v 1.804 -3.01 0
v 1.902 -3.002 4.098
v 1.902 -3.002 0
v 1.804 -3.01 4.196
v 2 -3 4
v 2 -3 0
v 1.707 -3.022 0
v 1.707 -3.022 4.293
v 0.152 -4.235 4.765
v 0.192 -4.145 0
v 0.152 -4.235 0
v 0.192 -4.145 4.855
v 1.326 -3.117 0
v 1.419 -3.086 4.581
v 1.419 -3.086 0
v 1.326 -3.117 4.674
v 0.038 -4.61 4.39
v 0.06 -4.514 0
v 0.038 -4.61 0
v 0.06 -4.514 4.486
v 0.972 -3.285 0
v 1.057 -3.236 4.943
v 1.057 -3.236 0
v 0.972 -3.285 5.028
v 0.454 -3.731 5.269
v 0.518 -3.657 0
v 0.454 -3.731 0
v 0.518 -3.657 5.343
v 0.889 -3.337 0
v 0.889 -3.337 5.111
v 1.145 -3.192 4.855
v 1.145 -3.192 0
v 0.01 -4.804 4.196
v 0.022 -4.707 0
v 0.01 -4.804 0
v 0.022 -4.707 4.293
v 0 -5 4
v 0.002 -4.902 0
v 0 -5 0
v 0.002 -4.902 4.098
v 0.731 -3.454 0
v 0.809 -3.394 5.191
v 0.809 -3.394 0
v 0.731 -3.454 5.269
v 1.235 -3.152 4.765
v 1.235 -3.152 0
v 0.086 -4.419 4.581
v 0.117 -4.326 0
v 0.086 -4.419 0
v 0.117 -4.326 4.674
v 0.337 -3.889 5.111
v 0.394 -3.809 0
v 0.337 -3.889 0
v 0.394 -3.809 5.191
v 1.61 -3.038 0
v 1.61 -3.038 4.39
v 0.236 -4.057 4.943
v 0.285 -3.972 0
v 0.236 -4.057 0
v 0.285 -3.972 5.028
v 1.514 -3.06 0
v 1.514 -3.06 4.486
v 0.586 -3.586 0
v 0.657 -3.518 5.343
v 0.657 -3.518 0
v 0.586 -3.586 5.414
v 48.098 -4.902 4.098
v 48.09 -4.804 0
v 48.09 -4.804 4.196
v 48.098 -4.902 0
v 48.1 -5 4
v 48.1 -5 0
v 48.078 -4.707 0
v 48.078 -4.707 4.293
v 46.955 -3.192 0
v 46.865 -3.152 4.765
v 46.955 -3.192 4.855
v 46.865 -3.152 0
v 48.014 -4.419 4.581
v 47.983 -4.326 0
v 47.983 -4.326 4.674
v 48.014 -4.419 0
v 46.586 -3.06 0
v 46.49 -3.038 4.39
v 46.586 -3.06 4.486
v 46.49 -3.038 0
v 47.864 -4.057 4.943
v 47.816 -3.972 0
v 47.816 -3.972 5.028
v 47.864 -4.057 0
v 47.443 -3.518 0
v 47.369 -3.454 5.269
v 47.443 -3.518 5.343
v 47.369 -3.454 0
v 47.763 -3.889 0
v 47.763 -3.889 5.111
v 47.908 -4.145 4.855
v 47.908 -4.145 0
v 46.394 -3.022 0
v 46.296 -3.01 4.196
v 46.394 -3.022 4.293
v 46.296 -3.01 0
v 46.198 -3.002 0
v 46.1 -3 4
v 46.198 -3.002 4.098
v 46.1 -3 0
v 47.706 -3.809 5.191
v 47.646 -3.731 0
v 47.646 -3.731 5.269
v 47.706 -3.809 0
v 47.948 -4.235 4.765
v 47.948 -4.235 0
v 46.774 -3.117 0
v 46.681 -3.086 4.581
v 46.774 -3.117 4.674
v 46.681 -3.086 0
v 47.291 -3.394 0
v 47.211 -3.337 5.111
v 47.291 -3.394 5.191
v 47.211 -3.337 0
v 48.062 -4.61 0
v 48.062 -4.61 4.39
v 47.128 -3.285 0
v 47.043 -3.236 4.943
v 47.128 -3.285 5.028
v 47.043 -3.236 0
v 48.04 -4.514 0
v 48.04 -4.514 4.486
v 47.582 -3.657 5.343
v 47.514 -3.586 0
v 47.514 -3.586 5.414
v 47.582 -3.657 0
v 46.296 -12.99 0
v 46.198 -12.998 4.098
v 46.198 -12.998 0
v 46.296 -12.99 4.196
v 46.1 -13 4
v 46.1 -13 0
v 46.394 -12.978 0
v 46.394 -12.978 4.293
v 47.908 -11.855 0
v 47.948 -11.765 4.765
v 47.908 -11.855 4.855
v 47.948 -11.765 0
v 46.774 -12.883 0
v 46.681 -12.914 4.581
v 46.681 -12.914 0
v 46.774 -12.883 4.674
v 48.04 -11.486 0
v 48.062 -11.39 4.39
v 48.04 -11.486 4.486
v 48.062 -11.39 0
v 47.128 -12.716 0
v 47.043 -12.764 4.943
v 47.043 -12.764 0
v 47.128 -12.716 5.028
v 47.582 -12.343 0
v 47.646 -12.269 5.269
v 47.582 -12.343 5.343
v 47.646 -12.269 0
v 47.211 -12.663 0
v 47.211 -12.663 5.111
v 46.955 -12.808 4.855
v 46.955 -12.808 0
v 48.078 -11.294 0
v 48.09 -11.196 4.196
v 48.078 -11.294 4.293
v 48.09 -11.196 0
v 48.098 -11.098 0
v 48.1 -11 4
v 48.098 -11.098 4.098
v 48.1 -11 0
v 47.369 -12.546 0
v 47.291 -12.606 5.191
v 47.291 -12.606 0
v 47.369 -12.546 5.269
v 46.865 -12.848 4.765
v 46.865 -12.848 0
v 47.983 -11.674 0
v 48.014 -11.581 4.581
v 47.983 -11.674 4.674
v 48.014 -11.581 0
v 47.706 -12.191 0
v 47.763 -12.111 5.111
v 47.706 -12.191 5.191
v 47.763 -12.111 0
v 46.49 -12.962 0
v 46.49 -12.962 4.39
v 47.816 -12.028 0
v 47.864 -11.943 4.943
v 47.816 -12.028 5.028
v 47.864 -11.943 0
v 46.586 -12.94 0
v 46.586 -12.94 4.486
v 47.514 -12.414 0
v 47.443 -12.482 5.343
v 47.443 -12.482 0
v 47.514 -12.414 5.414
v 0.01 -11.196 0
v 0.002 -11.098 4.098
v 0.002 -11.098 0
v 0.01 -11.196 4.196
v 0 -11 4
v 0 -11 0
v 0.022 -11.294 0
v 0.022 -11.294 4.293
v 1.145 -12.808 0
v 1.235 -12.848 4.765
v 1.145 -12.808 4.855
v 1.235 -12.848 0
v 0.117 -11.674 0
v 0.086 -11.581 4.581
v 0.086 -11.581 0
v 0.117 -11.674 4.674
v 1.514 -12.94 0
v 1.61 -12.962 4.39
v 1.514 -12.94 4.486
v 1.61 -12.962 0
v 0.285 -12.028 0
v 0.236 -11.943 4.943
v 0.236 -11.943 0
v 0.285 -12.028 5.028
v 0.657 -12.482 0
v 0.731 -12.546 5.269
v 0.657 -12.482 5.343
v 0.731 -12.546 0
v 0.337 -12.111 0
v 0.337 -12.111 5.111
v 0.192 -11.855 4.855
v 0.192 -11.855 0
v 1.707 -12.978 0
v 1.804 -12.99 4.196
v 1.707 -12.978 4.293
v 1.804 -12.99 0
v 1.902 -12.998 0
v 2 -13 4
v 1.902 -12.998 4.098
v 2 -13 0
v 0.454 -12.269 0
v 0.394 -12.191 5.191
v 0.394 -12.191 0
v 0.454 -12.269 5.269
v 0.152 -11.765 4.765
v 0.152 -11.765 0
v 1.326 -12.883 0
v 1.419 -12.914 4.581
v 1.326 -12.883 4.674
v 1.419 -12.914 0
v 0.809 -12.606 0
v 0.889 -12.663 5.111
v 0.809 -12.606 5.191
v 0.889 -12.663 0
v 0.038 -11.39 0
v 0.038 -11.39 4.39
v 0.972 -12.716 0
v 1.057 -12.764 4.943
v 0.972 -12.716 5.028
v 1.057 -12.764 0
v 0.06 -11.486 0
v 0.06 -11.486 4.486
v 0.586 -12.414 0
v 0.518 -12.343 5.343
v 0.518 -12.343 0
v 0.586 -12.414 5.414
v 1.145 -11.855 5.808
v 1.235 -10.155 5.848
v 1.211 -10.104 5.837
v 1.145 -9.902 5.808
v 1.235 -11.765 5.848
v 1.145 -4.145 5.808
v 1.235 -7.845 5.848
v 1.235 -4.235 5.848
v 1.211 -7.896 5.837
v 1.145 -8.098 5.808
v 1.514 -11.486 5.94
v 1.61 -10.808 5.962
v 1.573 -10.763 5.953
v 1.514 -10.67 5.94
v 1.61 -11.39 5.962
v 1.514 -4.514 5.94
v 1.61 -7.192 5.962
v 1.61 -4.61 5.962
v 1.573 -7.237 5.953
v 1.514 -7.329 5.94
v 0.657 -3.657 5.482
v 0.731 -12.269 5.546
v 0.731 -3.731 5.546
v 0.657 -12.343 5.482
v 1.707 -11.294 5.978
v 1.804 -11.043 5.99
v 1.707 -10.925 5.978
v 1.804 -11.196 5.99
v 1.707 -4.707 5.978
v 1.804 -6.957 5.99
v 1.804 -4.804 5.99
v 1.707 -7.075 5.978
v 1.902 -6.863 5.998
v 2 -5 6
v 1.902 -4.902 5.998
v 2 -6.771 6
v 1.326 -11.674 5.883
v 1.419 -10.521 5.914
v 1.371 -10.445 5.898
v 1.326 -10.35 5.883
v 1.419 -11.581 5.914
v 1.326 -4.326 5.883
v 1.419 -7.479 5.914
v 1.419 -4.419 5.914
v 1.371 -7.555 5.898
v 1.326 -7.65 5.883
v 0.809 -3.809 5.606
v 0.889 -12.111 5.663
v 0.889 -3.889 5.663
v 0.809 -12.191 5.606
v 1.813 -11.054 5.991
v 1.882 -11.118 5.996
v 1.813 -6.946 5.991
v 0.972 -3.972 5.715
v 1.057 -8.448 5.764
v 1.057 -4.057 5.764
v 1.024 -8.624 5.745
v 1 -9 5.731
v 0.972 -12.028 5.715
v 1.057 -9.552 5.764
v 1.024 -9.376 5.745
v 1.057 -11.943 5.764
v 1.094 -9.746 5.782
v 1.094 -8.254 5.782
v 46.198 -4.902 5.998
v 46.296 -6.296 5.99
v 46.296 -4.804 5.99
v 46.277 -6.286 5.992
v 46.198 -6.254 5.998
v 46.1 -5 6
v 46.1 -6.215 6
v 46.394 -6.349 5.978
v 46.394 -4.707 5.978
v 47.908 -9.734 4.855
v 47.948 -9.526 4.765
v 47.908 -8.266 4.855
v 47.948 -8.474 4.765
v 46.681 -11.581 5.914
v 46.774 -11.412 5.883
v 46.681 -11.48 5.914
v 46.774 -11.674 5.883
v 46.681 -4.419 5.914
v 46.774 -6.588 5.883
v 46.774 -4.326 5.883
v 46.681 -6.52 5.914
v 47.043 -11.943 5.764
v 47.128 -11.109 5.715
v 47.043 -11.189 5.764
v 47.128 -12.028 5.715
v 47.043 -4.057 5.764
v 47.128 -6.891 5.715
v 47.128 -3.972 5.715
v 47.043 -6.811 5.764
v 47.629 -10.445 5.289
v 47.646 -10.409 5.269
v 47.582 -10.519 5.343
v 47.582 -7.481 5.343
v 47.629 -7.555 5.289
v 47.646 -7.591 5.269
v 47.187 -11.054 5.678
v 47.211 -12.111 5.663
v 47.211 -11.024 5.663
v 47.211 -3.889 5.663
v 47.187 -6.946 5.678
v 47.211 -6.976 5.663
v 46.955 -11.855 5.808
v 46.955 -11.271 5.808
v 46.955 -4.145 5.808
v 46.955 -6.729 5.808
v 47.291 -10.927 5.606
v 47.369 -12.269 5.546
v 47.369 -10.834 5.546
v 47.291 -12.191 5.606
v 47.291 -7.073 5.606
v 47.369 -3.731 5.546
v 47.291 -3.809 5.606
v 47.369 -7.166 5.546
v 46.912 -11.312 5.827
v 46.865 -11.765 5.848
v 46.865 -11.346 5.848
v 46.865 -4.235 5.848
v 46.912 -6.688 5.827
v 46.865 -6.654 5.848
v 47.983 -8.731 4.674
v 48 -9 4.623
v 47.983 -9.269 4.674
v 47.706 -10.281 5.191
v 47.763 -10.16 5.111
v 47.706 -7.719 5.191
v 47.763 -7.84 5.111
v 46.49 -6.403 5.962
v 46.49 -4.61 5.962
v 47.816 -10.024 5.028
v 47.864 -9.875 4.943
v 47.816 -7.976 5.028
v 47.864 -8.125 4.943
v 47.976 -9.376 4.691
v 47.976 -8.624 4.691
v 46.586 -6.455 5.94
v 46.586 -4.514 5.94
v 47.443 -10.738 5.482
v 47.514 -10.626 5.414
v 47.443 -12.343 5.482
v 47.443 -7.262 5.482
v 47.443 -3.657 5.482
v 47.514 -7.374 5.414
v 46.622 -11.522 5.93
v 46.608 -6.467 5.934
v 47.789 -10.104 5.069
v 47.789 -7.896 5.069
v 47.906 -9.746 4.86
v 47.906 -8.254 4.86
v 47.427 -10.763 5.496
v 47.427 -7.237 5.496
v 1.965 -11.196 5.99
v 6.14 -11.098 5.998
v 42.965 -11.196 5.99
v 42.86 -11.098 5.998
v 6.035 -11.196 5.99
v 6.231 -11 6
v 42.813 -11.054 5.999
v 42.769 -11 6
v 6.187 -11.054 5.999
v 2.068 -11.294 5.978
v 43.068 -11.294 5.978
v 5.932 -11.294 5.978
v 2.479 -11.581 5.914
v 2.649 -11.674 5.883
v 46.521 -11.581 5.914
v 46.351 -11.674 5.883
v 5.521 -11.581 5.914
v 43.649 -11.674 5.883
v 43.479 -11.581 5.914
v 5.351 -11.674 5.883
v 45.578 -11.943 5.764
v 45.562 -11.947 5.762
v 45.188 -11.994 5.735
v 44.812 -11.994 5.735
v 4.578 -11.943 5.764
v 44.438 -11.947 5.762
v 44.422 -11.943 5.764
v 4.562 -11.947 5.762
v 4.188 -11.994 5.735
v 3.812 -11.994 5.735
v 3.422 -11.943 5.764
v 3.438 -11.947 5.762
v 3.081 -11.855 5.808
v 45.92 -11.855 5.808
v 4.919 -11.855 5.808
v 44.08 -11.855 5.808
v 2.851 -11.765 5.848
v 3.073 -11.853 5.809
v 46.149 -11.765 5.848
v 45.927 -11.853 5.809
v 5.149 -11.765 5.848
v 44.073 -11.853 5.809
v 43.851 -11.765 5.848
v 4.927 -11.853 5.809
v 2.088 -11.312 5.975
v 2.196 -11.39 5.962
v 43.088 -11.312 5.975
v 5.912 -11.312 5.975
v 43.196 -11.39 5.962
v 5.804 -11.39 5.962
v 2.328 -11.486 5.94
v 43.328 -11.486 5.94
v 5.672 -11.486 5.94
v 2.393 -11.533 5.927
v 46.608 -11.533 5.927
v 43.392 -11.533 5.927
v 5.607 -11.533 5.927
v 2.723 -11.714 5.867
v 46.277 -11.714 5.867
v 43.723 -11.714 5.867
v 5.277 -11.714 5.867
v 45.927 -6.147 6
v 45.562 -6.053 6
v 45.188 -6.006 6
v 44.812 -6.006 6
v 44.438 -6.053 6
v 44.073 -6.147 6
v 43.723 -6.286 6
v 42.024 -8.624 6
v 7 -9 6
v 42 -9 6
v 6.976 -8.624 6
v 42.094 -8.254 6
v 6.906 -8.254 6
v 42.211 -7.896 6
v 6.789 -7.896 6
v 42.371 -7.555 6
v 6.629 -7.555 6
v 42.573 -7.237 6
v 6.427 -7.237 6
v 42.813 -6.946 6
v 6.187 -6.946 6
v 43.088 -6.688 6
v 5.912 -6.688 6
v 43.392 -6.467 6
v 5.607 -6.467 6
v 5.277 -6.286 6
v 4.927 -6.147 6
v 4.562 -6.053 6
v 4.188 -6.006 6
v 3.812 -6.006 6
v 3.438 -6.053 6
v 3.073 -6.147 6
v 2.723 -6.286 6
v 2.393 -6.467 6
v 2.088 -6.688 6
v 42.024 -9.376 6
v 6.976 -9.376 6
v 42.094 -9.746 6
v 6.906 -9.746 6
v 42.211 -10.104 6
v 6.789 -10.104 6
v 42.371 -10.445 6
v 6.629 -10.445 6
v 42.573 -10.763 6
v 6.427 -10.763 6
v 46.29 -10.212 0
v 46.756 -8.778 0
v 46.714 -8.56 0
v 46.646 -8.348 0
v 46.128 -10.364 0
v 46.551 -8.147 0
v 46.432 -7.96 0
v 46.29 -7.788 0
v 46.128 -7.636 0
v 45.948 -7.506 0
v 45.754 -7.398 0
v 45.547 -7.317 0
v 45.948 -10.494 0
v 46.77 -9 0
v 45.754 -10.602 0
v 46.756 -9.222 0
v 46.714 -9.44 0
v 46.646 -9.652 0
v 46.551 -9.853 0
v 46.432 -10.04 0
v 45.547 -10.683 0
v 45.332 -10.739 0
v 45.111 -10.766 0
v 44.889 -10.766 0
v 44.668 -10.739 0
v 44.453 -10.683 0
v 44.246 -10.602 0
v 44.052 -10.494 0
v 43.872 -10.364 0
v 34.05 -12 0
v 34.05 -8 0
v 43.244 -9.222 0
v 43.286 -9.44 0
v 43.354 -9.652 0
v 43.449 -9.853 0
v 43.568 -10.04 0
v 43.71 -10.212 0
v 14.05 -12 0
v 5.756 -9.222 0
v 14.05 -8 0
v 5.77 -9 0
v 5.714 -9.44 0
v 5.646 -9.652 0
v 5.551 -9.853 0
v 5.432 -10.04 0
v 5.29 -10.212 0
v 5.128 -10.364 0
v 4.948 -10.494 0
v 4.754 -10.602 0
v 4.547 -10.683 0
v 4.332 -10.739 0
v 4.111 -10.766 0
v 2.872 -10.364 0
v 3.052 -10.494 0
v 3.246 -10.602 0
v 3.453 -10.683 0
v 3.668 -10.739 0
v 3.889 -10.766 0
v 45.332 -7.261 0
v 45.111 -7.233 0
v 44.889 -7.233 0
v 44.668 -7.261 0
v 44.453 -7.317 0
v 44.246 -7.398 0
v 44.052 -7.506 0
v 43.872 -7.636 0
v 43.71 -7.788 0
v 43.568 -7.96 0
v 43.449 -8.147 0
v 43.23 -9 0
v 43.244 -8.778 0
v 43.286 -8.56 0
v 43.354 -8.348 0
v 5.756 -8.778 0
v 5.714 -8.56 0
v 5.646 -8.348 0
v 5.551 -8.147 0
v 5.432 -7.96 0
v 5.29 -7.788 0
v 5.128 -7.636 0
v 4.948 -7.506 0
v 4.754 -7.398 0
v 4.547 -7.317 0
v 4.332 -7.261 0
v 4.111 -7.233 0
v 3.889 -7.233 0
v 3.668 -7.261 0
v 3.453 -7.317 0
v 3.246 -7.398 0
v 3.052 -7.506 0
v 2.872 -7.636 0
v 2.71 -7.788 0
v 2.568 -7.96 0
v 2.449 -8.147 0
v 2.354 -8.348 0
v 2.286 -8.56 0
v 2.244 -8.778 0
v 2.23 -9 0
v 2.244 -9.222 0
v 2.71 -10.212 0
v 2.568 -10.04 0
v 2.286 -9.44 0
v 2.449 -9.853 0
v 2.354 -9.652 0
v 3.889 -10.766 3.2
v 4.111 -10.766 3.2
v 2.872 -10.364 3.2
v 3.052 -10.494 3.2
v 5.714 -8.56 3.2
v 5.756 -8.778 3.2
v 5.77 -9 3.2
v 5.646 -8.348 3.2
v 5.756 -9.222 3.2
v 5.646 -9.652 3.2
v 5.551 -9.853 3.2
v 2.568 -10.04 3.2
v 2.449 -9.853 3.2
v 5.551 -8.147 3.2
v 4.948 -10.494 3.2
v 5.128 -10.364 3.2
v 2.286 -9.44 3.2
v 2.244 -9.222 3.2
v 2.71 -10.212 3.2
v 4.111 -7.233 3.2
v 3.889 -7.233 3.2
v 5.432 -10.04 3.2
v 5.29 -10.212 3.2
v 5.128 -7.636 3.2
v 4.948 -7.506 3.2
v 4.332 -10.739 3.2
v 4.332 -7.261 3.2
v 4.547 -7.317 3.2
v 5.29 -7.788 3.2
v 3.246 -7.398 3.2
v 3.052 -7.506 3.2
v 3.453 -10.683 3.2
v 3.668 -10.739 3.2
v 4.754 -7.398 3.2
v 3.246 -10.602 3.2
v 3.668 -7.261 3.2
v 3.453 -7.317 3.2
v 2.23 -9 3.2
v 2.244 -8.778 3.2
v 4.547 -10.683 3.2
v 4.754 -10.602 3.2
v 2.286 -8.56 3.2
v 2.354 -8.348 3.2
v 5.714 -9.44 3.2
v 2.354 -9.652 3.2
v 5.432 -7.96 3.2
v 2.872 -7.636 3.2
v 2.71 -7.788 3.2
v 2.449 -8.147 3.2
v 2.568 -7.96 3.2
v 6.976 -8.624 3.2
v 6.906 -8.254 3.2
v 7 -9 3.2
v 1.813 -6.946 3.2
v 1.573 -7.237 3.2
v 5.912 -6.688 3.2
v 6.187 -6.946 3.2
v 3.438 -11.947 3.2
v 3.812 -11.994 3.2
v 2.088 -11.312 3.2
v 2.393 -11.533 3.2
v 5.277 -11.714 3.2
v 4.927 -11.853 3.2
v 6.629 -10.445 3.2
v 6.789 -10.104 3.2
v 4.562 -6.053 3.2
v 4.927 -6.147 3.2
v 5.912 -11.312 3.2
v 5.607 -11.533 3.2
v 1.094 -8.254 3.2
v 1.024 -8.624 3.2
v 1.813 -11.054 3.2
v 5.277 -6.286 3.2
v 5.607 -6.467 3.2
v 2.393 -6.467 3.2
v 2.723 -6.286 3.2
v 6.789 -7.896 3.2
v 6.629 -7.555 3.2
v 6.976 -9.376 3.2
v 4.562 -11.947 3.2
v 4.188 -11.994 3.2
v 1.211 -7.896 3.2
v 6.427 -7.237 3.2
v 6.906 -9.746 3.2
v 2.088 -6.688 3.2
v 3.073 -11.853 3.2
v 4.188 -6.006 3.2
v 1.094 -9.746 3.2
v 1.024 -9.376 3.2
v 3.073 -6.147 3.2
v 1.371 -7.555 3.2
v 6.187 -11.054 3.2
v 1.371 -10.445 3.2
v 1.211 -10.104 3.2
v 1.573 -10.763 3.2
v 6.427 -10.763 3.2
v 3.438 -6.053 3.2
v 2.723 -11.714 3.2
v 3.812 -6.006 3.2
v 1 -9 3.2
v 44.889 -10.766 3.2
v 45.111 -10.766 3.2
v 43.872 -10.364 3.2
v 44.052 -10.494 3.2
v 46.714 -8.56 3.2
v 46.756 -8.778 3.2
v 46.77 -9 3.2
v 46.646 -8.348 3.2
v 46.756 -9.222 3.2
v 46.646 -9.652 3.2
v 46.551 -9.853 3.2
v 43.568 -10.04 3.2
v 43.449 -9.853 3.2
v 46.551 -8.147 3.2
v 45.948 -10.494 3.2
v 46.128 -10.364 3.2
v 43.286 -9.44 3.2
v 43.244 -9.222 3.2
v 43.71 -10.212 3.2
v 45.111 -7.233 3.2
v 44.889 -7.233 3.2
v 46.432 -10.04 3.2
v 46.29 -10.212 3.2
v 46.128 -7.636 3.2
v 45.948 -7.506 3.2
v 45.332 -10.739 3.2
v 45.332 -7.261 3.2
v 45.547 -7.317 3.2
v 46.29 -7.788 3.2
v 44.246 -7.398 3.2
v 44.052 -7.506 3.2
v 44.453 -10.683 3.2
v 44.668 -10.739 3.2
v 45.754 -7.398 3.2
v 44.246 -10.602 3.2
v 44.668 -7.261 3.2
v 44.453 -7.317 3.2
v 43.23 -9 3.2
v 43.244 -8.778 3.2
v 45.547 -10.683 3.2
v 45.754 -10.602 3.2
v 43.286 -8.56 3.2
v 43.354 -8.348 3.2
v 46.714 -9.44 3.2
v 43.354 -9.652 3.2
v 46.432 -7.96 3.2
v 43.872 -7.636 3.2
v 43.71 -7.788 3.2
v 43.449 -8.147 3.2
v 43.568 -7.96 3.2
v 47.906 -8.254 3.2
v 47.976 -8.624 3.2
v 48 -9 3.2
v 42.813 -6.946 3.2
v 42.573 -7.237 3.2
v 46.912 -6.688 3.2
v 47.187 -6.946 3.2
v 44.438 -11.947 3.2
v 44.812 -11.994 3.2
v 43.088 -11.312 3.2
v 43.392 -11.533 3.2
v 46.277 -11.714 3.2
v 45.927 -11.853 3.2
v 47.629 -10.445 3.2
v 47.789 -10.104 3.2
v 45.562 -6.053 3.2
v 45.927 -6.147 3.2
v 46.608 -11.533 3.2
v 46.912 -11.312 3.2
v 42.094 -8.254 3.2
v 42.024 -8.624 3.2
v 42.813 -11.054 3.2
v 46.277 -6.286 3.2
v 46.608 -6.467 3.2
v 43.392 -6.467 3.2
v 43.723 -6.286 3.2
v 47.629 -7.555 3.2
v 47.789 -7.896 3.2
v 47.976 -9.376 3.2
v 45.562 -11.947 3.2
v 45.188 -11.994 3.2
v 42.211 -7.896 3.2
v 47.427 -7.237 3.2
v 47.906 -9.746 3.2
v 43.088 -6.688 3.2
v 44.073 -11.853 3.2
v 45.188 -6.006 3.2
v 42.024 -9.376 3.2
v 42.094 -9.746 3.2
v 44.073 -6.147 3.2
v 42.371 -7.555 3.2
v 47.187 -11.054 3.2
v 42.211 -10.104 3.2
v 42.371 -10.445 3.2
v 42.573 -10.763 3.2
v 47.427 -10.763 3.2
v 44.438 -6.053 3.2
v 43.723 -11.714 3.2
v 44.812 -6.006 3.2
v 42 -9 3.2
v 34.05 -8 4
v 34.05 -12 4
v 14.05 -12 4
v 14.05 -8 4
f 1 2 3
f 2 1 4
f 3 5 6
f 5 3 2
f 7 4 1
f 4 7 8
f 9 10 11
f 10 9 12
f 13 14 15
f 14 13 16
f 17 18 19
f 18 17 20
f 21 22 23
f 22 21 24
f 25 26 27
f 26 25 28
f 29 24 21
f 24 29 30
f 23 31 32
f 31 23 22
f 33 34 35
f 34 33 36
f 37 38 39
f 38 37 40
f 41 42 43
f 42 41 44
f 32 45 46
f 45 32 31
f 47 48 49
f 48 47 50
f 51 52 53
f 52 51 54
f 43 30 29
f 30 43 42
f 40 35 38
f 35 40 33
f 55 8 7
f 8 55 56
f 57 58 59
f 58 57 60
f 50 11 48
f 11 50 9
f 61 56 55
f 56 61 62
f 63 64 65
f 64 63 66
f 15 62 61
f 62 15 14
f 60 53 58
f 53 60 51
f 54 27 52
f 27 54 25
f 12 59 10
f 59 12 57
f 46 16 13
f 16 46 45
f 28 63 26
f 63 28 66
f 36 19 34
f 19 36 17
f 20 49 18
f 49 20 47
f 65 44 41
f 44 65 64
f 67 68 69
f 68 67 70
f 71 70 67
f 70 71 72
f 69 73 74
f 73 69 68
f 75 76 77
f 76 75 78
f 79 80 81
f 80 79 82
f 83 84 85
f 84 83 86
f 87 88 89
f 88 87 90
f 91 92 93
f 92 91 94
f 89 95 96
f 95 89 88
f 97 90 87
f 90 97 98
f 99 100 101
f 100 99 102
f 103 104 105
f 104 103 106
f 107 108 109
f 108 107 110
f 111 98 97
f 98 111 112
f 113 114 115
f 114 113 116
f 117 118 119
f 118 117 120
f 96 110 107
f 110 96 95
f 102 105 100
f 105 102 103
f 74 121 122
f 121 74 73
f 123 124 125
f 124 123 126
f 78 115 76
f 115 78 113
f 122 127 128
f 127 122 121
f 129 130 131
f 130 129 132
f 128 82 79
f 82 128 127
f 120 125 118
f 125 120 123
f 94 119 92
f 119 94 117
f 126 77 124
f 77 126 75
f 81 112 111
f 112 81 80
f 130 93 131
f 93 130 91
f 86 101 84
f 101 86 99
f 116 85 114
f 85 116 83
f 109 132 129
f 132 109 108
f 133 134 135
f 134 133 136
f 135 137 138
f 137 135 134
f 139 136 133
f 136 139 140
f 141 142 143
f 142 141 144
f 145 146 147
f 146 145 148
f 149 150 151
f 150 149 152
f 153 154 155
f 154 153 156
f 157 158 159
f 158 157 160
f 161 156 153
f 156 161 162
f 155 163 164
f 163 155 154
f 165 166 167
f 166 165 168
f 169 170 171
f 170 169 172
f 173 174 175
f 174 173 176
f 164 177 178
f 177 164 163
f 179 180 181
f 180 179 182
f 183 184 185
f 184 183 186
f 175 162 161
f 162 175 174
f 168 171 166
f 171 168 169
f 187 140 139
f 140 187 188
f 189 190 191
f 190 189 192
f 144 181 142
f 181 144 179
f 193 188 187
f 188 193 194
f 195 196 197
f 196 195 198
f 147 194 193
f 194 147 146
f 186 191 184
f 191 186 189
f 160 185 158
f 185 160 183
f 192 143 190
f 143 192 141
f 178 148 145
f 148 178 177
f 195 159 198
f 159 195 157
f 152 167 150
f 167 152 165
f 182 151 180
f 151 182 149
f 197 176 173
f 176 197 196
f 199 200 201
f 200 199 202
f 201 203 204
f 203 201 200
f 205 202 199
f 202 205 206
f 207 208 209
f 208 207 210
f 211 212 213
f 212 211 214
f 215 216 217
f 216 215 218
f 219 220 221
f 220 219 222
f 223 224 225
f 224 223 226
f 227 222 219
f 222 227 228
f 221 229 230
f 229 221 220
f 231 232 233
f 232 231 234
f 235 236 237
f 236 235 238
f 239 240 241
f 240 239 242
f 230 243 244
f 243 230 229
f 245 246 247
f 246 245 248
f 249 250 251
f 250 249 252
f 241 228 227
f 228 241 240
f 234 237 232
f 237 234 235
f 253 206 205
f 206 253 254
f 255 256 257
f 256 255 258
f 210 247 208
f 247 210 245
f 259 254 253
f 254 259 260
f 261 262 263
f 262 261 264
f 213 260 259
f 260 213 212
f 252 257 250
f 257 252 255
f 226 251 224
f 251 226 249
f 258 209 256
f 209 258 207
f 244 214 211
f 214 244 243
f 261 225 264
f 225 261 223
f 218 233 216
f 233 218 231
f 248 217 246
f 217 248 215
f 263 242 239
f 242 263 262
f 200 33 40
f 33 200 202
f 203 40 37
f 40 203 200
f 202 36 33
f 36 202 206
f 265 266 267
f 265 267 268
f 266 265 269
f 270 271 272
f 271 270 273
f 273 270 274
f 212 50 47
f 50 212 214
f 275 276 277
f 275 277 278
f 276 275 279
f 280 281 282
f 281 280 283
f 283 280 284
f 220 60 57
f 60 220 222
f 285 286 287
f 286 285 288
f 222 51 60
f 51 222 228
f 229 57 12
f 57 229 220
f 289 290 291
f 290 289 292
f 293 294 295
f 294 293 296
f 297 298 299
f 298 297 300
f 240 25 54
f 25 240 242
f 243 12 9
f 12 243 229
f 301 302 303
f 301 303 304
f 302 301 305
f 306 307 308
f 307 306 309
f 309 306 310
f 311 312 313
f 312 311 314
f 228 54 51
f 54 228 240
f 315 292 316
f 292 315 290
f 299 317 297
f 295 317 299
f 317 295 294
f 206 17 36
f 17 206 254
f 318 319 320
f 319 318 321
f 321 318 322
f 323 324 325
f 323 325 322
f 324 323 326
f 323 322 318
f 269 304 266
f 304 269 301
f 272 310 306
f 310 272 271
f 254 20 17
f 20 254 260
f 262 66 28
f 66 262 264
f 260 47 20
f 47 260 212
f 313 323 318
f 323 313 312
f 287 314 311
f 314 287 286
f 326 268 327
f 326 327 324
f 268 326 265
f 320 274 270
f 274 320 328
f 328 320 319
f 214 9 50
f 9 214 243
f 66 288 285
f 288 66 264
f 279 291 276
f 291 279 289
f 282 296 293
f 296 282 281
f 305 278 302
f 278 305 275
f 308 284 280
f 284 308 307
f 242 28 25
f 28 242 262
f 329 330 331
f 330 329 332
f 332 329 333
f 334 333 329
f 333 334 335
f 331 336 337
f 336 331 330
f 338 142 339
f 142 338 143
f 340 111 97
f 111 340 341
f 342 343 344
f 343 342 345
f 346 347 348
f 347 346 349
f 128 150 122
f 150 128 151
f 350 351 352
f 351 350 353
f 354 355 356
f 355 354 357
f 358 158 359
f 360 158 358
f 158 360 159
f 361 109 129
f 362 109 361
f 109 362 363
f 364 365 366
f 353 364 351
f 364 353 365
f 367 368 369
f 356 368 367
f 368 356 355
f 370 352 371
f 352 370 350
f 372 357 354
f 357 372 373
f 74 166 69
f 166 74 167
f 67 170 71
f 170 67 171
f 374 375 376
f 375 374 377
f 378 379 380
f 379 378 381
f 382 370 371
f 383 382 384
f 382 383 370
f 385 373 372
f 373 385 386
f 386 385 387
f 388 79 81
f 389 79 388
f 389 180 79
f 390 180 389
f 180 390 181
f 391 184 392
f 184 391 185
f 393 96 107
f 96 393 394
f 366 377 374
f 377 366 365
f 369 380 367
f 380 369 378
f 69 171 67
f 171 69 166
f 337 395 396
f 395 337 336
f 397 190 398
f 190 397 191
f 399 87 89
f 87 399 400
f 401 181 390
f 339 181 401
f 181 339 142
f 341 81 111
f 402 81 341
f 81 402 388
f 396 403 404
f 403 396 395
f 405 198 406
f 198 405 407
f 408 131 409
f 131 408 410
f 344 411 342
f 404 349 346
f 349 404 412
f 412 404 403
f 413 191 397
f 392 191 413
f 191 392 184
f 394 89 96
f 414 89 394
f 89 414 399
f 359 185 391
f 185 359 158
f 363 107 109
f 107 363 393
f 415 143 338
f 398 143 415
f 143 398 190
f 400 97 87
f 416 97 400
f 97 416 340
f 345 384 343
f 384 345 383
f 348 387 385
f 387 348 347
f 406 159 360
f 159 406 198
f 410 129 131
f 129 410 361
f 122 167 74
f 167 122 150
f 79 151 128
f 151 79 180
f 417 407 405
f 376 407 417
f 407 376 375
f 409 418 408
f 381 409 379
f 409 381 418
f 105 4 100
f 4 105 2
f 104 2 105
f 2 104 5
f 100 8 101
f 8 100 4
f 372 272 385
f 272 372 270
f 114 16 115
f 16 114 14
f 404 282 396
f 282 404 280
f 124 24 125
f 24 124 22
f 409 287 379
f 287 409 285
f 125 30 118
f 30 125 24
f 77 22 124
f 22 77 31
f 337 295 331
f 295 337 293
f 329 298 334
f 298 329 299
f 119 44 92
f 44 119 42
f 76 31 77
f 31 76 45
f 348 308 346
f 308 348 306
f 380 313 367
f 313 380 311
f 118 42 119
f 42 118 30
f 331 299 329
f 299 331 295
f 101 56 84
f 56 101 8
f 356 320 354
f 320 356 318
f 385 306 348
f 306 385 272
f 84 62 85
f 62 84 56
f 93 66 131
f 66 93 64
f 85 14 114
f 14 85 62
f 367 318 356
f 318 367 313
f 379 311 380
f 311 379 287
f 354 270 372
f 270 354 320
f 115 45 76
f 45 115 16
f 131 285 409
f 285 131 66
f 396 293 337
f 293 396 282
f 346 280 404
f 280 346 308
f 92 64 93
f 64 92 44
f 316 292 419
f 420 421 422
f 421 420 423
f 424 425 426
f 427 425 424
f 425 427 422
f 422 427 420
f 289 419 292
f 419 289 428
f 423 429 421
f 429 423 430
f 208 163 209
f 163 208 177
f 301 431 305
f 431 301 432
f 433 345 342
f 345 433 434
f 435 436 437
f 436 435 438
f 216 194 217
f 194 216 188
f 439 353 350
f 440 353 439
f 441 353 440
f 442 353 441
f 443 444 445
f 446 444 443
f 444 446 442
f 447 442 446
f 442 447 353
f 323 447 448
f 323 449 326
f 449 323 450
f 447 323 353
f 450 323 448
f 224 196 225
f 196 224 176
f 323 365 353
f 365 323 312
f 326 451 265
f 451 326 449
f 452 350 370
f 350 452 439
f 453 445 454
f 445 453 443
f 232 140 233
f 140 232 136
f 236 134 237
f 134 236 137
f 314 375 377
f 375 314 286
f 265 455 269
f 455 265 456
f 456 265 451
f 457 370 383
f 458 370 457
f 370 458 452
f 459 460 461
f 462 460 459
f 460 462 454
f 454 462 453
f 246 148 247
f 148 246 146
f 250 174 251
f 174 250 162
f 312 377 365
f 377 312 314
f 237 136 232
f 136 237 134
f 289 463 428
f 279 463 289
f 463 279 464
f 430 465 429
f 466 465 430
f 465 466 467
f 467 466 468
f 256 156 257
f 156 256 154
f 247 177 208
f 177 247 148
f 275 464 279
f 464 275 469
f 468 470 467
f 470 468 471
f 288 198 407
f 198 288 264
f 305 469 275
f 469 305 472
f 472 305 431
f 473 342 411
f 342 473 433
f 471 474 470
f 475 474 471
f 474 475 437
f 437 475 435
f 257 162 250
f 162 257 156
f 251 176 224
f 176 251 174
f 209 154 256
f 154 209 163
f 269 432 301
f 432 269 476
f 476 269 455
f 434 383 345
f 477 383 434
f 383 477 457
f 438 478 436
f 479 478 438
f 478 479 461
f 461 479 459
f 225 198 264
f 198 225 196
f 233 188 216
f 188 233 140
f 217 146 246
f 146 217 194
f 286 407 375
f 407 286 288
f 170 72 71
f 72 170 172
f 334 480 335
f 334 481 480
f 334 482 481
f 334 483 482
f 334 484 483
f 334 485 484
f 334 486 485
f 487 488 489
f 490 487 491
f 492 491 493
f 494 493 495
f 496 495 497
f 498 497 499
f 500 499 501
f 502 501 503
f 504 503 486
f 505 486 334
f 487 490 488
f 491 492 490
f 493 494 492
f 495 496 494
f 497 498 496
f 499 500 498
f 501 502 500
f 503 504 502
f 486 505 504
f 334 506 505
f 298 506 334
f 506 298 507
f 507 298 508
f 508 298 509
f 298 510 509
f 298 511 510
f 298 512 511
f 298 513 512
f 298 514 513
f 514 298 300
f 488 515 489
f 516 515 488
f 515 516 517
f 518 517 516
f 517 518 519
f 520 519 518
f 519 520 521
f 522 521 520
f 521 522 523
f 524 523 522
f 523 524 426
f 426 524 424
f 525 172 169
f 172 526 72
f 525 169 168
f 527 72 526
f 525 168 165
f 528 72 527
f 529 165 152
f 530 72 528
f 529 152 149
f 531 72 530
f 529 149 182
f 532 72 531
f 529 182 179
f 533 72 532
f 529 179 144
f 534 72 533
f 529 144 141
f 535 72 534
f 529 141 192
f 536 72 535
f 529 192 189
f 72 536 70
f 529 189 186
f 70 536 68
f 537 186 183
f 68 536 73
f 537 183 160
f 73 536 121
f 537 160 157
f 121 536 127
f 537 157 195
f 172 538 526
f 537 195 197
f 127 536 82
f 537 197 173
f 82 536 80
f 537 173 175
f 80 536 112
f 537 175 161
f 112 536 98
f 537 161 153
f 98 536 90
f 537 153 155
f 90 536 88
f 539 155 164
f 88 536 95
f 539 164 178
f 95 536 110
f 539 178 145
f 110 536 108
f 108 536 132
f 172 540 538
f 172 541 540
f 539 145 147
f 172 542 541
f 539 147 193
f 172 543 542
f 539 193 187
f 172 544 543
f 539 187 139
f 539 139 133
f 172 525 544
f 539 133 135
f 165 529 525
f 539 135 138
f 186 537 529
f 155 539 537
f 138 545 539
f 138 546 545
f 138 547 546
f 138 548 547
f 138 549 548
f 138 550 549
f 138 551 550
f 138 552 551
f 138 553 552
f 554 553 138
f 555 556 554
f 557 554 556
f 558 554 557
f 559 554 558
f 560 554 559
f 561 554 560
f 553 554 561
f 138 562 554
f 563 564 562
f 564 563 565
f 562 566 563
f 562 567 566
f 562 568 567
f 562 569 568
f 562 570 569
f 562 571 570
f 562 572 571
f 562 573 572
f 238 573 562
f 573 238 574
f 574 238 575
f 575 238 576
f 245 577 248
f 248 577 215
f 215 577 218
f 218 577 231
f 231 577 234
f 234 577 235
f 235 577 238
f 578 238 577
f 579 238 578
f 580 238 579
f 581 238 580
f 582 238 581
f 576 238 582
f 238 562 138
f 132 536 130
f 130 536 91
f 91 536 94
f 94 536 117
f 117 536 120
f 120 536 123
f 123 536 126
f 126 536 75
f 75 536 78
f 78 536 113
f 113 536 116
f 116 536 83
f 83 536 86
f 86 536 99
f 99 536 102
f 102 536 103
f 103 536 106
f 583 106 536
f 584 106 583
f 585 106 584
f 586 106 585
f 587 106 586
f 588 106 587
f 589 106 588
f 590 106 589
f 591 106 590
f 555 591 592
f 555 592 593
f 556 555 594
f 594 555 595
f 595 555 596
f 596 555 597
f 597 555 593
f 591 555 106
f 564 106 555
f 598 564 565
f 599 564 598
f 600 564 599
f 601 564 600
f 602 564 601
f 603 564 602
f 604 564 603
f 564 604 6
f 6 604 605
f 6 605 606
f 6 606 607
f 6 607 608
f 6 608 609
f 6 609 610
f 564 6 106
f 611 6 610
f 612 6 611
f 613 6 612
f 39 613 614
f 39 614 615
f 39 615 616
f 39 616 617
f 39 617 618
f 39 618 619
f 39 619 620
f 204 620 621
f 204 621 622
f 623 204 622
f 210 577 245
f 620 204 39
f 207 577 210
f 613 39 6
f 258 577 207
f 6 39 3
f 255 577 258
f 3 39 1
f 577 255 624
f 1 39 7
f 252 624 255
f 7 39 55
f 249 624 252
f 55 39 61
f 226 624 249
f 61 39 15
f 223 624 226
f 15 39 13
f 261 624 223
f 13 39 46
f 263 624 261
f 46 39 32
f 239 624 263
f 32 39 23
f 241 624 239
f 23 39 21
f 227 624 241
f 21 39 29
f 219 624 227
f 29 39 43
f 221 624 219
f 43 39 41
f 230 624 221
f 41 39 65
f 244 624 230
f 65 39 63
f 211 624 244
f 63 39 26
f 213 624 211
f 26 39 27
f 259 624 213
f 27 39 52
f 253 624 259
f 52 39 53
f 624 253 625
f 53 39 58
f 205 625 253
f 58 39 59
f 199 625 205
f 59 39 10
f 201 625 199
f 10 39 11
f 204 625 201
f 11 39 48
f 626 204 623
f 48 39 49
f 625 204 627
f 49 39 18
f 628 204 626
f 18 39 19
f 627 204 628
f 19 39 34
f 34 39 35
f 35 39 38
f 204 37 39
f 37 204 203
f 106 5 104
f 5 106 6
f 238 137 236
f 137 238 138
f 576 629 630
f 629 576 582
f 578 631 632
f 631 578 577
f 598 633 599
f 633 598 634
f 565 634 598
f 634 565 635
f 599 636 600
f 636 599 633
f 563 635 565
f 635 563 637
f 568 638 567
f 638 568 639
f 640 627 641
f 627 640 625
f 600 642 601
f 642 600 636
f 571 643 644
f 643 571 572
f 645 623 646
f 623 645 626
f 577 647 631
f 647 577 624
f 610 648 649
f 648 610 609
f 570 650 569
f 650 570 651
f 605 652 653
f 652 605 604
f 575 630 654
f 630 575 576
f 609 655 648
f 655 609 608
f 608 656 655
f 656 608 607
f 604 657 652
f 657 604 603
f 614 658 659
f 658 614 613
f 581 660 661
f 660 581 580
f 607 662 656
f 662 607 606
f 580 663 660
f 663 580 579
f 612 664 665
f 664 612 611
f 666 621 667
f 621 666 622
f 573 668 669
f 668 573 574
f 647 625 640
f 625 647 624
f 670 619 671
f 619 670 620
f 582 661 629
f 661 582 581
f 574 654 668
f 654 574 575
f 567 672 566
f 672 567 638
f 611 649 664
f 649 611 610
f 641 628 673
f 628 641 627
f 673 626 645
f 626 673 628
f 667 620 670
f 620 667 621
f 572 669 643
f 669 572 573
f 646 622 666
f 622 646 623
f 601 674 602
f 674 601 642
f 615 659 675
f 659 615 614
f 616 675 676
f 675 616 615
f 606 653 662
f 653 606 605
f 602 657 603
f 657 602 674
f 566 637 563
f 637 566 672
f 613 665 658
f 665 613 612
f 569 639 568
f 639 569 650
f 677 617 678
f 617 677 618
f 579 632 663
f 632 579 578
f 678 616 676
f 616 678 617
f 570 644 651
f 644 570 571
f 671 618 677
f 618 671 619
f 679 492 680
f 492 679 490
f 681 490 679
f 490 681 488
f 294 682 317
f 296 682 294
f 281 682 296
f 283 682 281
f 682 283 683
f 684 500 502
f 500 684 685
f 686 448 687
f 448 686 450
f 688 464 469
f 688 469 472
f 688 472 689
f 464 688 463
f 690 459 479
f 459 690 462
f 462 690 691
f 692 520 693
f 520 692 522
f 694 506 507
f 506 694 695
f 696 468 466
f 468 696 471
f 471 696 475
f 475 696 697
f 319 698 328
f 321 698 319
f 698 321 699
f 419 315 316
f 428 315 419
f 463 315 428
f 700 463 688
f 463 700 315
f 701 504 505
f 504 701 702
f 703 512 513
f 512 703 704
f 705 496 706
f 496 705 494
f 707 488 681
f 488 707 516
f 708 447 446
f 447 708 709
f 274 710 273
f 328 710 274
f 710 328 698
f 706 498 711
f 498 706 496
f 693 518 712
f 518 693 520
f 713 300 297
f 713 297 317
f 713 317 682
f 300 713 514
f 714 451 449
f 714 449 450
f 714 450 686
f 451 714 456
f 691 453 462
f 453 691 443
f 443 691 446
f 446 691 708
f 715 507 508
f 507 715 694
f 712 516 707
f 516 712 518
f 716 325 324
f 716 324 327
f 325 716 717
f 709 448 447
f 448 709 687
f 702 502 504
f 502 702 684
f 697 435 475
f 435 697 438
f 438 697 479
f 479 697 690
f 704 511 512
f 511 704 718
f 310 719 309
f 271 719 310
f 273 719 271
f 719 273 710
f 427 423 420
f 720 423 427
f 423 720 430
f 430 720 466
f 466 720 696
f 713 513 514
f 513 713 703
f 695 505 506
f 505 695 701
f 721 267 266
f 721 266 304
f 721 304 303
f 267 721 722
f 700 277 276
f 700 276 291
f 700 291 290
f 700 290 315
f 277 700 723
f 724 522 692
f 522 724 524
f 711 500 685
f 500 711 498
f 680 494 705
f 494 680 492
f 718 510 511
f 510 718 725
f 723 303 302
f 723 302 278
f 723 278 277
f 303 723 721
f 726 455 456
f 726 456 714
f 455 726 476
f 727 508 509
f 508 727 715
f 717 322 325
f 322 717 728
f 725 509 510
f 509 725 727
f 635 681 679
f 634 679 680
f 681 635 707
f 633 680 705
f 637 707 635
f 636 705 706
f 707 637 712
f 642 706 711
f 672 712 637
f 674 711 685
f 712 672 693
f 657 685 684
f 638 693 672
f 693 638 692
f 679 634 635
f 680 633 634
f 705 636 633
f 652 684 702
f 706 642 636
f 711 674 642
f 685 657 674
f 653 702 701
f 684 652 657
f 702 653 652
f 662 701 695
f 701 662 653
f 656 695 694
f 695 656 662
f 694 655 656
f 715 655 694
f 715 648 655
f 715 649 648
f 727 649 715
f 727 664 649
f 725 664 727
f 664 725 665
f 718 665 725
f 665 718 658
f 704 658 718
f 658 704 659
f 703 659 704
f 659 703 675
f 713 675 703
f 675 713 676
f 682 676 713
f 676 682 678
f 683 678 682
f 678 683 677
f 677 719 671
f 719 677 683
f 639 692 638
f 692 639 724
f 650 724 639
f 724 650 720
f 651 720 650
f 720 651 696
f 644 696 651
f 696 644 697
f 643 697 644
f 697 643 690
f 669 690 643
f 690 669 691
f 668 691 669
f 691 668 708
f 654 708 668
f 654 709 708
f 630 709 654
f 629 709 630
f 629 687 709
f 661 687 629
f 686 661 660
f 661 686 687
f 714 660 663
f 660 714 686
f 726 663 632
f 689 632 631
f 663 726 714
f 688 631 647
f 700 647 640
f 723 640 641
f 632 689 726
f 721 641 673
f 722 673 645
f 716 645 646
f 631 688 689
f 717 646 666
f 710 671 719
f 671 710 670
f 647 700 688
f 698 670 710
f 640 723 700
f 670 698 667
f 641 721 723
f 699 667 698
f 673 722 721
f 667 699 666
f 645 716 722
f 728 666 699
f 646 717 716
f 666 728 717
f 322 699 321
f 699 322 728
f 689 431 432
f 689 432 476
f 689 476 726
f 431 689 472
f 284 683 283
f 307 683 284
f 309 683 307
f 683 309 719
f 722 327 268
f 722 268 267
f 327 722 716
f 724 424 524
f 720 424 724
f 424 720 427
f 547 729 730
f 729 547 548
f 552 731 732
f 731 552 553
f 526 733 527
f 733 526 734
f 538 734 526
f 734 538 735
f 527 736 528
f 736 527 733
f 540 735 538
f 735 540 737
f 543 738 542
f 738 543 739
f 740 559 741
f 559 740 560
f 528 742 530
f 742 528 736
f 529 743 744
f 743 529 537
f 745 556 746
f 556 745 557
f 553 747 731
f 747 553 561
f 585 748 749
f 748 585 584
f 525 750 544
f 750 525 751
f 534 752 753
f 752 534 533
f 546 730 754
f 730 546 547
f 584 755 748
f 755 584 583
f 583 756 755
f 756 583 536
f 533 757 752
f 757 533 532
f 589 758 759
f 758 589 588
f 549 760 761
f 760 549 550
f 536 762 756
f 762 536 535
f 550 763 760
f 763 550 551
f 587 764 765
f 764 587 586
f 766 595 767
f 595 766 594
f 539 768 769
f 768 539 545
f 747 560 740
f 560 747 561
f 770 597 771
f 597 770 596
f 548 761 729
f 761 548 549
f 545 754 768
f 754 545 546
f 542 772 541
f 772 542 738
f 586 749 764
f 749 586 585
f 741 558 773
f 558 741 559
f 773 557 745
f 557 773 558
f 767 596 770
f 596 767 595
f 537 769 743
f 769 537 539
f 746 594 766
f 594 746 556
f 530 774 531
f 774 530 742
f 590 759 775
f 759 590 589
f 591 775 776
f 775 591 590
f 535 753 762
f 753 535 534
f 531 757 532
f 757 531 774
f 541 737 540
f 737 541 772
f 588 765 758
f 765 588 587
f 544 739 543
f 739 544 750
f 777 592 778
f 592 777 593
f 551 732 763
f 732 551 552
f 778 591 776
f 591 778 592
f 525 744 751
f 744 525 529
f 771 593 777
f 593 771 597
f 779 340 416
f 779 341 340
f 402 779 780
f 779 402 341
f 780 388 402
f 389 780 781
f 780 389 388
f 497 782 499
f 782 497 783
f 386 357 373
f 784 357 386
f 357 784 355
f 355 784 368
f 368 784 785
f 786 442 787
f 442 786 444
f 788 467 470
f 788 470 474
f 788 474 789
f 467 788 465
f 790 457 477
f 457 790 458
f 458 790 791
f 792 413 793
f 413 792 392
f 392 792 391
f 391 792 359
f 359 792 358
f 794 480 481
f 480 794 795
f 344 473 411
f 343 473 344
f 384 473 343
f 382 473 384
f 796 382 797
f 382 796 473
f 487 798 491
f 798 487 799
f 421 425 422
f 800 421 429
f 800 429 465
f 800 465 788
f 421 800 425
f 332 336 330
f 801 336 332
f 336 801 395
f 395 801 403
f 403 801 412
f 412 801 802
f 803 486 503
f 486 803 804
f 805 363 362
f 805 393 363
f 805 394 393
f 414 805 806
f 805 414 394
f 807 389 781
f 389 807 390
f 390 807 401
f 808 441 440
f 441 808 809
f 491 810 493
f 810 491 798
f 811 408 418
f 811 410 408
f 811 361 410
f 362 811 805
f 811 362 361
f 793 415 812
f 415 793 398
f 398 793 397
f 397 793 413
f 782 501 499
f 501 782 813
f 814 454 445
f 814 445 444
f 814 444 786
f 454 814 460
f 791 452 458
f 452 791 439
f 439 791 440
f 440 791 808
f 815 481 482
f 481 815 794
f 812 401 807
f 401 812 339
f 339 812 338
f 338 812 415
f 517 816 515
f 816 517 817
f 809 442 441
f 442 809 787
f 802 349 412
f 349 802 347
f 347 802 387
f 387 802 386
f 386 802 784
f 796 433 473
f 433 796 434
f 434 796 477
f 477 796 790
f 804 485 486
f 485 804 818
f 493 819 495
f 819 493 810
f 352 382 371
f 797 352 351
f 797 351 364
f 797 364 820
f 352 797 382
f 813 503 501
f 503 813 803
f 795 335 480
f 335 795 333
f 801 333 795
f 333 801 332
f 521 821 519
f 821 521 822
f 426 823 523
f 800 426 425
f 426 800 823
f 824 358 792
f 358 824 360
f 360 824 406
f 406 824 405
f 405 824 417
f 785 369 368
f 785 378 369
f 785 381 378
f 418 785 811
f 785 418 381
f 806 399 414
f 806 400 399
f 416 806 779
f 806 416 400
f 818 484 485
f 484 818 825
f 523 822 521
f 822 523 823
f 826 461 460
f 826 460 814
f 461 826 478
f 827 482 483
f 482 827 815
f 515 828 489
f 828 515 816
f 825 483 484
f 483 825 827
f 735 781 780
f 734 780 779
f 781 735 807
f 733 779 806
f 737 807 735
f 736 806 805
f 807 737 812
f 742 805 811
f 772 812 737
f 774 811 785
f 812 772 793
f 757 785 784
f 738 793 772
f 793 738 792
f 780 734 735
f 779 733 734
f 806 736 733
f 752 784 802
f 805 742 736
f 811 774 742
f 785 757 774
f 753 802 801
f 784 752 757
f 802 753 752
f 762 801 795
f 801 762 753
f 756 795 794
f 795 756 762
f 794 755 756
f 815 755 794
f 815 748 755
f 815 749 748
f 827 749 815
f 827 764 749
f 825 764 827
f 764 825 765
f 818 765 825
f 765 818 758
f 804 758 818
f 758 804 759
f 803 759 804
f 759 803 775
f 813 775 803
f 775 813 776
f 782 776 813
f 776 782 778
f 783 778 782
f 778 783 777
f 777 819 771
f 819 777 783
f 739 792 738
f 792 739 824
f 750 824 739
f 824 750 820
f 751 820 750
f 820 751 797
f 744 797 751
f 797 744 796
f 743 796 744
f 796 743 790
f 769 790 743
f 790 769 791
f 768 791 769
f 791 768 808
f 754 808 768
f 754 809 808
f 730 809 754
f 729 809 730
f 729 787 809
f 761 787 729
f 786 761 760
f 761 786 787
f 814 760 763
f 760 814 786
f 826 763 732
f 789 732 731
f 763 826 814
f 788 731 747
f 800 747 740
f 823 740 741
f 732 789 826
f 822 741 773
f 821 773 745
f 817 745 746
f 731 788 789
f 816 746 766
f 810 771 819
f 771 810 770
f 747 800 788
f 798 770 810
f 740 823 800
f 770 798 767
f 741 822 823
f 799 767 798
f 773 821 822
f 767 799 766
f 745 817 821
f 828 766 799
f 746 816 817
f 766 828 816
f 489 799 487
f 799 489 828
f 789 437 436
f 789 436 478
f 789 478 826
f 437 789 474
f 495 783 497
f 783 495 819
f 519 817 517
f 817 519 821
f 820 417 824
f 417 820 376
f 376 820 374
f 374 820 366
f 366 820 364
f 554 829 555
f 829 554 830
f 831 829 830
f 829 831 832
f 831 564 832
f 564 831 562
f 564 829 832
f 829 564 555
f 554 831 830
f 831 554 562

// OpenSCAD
// file: roundedCube.scad
/*
	Usage
	=====
	Prototype: roundedCube(dim, r, x, y, z, xcorners, ycorners, zcorners, $fn)
	Arguments:
		-      dim = Array of x,y,z numbers representing cube size
		-        r = Radius of corners. Default: 1
		-        x = Round the corners along the X axis of the cube. Default: false
		-        y = Round the corners along the Y axis of the cube. Default: false
		-        z = Round the corners along the Z axis of the cube. Default: true
		- xcorners = Array of 4 booleans, one for each X side of the cube, if true then round that side. Default: [true, true, true, true]
		- ycorners = Array of 4 booleans, one for each Y side of the cube, if true then round that side. Default: [true, true, true, true]
		- zcorners = Array of 4 booleans, one for each Z side of the cube, if true then round that side. Default: [true, true, true, true]
		-   center = Whether to render the cube centered or not. Default: false
		-      $fn = How smooth you want the rounding to be. Default: 128

	Thanks to robert@cosmicrealms.com from https://github.com/Sembiance/openscad-modules
    For a starting point for the project
*/

// Example code:

/*cube([5, 10, 4]);

translate([8, 0, 0]) { roundedCube([5, 10, 4], r=1); }
translate([16, 0, 0]) { roundedCube([5, 10, 4], r=1, zcorners=[true, false, true, false]); }

translate([24, 0, 0]) { roundedCube([5, 10, 4], r=1, y=true, z=false); }
translate([32, 0, 0]) { roundedCube([5, 10, 4], r=1, x=true, z=false); }
translate([40, 0, 0]) { roundedCube([5, 10, 4], r=1, x=true, y=true, z=true); }
*/

module roundedCube(dim, r=1, x=false, y=false, z=true, xcorners=[true,true,true,true], ycorners=[true,true,true,true], zcorners=[true,true,true,true], center=false, $fn=128)
{
	translate([(center==true ? (-(dim[0]/2)) : 0), (center==true ? (-(dim[1]/2)) : 0), (center==true ? (-(dim[2]/2)) : 0)])
	{
		difference()
		{
			cube(dim);

			if(z)
			{
				translate([0, 0, -0.1])
				{
					if(zcorners[0])
						translate([0, dim[1]-r]) { rotateAround([0, 0, 90], [r/2, r/2, 0]) { meniscus(h=dim[2], r=r, fn=$fn); } }
					if(zcorners[1])
						translate([dim[0]-r, dim[1]-r]) { meniscus(h=dim[2], r=r, fn=$fn); }
					if(zcorners[2])
						translate([dim[0]-r, 0]) { rotateAround([0, 0, -90], [r/2, r/2, 0]) { meniscus(h=dim[2], r=r, fn=$fn); } }
					if(zcorners[3])
						rotateAround([0, 0, -180], [r/2, r/2, 0]) { meniscus(h=dim[2], r=r, fn=$fn); }
				}
			}

			if(y)
			{
				translate([0, -0.1, 0])
				{
					if(ycorners[0])
						translate([0, 0, dim[2]-r]) { rotateAround([0, 180, 0], [r/2, 0, r/2]) { rotateAround([-90, 0, 0], [0, r/2, r/2]) { meniscus(h=dim[1], r=r); } } }
					if(ycorners[1])
						translate([dim[0]-r, 0, dim[2]-r]) { rotateAround([0, -90, 0], [r/2, 0, r/2]) { rotateAround([-90, 0, 0], [0, r/2, r/2]) { meniscus(h=dim[1], r=r); } } }
					if(ycorners[2])
						translate([dim[0]-r, 0]) { rotateAround([-90, 0, 0], [0, r/2, r/2]) { meniscus(h=dim[1], r=r); } }
					if(ycorners[3])
						rotateAround([0, 90, 0], [r/2, 0, r/2]) { rotateAround([-90, 0, 0], [0, r/2, r/2]) { meniscus(h=dim[1], r=r); } }
				}
			}

			if(x)
			{
				translate([-0.1, 0, 0])
				{
					if(xcorners[0])
						translate([0, dim[1]-r]) { rotateAround([0, 90, 0], [r/2, 0, r/2]) { meniscus(h=dim[0], r=r); } }
					if(xcorners[1])
						translate([0, dim[1]-r, dim[2]-r]) { rotateAround([90, 0, 0], [0, r/2, r/2]) { rotateAround([0, 90, 0], [r/2, 0, r/2]) { meniscus(h=dim[0], r=r); } } }
					if(xcorners[2])
						translate([0, 0, dim[2]-r]) { rotateAround([180, 0, 0], [0, r/2, r/2]) { rotateAround([0, 90, 0], [r/2, 0, r/2]) { meniscus(h=dim[0], r=r); } } }
					if(xcorners[3])
						rotateAround([-90, 0, 0], [0, r/2, r/2]) { rotateAround([0, 90, 0], [r/2, 0, r/2]) { meniscus(h=dim[0], r=r); } }
				}
			}
		}
	}
}

module meniscus(h, r, fn=128)
{
	$fn=fn;

	difference()
	{
		cube([r+0.2, r+0.2, h+0.2]);
		translate([0, 0, -0.1]) { cylinder(h=h+0.4, r=r); }
	}
}

module rotateAround(a, v) { translate(v) { rotate(a) { translate(-v) { children(); } } } }
// main file
/* By: Ye Zhang (mr.yezhang@gmail.com)
   Date: June 6, 2020
    Touch pad bezel. To be embedded into panel. 
*/

use <roundedCube.scad>

touch_pad_board_x_length=48.1;
touch_pad_board_y_length=79;
touch_pad_board_z_length=1.56;

screw_hole_y_distance=72.5;
screw_hole_x_distance=41;

// #4 screw parameters
screw_hole_tap_diameter=2.78;
screw_thread_diamater=2.84;
// No-drag through-hole diameter
screw_hole_diameter=screw_thread_diamater+0.7;
screw_stem_length=8;
screw_head_diameter=5.5;
first_hole_center_offset_y=3;
first_hole_center_offset_x=4;

// Leave square hole for pin wiring, and room for surface mounted chip.
pin_and_chip_hole_edge_length=20;

// Add extra wall to hide the extruded pins.
pin_cover_y_wall_thickness=1;
// Pin cover hides the soldering pins. Looks better and safer.
pin_cover_y_length=9+pin_cover_y_wall_thickness;
pin_cover_x_length=touch_pad_board_x_length;
pin_cover_z_length=6;


pin_cover_screw_sink_diameter=screw_head_diameter + 0.5;
pin_cover_screw_sink_z_depth=2.8;

// this is for consumer use. Minimum hole depth for #4 5/16 screw to seat. 
base_screw_hole_z_depth=screw_stem_length-(pin_cover_z_length-pin_cover_screw_sink_z_depth)-touch_pad_board_z_length;
echo("base screw hole minimum depth is ", base_screw_hole_z_depth);

pin_cover_rounded_corner_radius=2;

// Remove this cube from pin cover, making room for extruded pins.
pin_area_y_length=4;
pin_area_x_length=pin_and_chip_hole_edge_length;
// Length of extrution above board.
pin_area_z_length=4;

module pin_cover_pin_cut_area() {
    translate([(touch_pad_board_x_length-pin_and_chip_hole_edge_length)/2, pin_cover_y_wall_thickness, 0]) 
        #cube([pin_area_x_length, pin_area_y_length, pin_area_z_length]);
}

module pin_cover() {
    difference() {
        roundedCube([pin_cover_x_length, pin_cover_y_length, pin_cover_z_length], center=false, r=pin_cover_rounded_corner_radius,
            x=true, xcorners=[false, true, true, false],
            z=true, 
            y=true, ycorners=[true, true, false, false]);
        
        
        translate([0, pin_cover_y_wall_thickness, 0]) {
            first_pin_cover_screw_hole();
            second_pin_cover_screw_hole();
        }
        
        pin_cover_pin_cut_area();
    }
}

module touch_pad() {
    union() {
        //difference() {
            cube([touch_pad_board_x_length, touch_pad_board_y_length, touch_pad_board_z_length]);
            
            first_screw_hole();
            second_screw_hole();    
            third_screw_hole();
            fourth_screw_hole();
            
            // pin_and_chip_hole();
        //}
    
        pin_and_chip_hole();
    }
}

module screw_hole() {
    cylinder(d=screw_hole_tap_diameter, h=touch_pad_board_z_length*20, center=false, $fn=50);
}

module pin_cover_screw_hole() {
    cylinder(d=screw_hole_diameter, h=touch_pad_board_z_length*50, center=false, $fn=50);
}

/* Screw sink so we can use shorter screws like 5/16 inch */
module pin_cover_screw_sink_hole() {
    translate([0, 0, pin_cover_z_length-pin_cover_screw_sink_z_depth]) 
        #cylinder(d=pin_cover_screw_sink_diameter, h=pin_cover_screw_sink_z_depth, center=false, $fn=50);
}

module first_pin_cover_screw_hole() {
        translate([first_hole_center_offset_x, first_hole_center_offset_y, 0])
            union() {
                pin_cover_screw_hole();
                pin_cover_screw_sink_hole();
            }
}

module second_pin_cover_screw_hole() {
        translate([first_hole_center_offset_x+screw_hole_x_distance, first_hole_center_offset_y, 0]) 
            union() {
                pin_cover_screw_hole();
                pin_cover_screw_sink_hole();
            }
}

module first_screw_hole() {
        translate([first_hole_center_offset_x, first_hole_center_offset_y, -1]) 
            screw_hole();
}

module second_screw_hole() {
        translate([first_hole_center_offset_x, first_hole_center_offset_y+screw_hole_y_distance, -1]) 
            screw_hole();
}

module third_screw_hole() {
        translate([first_hole_center_offset_x+screw_hole_x_distance, first_hole_center_offset_y+screw_hole_y_distance, -1]) 
            screw_hole();
}

module fourth_screw_hole() {
        translate([first_hole_center_offset_x+screw_hole_x_distance, first_hole_center_offset_y, -1]) 
            screw_hole();
}

module pin_and_chip_hole() {
    translate([(touch_pad_board_x_length-pin_and_chip_hole_edge_length)/2, touch_pad_board_y_length-pin_and_chip_hole_edge_length, -1]) 
        cube([pin_and_chip_hole_edge_length, pin_and_chip_hole_edge_length, touch_pad_board_z_length*5]);
}

%touch_pad();

// This puts the cover aside the pad
translate([0, -pin_area_y_length*2-5, 0])
    pin_cover();

// This puts the cover onto the pad, to double check fit
translate([0, -pin_cover_y_wall_thickness, touch_pad_board_z_length])
    %pin_cover();
